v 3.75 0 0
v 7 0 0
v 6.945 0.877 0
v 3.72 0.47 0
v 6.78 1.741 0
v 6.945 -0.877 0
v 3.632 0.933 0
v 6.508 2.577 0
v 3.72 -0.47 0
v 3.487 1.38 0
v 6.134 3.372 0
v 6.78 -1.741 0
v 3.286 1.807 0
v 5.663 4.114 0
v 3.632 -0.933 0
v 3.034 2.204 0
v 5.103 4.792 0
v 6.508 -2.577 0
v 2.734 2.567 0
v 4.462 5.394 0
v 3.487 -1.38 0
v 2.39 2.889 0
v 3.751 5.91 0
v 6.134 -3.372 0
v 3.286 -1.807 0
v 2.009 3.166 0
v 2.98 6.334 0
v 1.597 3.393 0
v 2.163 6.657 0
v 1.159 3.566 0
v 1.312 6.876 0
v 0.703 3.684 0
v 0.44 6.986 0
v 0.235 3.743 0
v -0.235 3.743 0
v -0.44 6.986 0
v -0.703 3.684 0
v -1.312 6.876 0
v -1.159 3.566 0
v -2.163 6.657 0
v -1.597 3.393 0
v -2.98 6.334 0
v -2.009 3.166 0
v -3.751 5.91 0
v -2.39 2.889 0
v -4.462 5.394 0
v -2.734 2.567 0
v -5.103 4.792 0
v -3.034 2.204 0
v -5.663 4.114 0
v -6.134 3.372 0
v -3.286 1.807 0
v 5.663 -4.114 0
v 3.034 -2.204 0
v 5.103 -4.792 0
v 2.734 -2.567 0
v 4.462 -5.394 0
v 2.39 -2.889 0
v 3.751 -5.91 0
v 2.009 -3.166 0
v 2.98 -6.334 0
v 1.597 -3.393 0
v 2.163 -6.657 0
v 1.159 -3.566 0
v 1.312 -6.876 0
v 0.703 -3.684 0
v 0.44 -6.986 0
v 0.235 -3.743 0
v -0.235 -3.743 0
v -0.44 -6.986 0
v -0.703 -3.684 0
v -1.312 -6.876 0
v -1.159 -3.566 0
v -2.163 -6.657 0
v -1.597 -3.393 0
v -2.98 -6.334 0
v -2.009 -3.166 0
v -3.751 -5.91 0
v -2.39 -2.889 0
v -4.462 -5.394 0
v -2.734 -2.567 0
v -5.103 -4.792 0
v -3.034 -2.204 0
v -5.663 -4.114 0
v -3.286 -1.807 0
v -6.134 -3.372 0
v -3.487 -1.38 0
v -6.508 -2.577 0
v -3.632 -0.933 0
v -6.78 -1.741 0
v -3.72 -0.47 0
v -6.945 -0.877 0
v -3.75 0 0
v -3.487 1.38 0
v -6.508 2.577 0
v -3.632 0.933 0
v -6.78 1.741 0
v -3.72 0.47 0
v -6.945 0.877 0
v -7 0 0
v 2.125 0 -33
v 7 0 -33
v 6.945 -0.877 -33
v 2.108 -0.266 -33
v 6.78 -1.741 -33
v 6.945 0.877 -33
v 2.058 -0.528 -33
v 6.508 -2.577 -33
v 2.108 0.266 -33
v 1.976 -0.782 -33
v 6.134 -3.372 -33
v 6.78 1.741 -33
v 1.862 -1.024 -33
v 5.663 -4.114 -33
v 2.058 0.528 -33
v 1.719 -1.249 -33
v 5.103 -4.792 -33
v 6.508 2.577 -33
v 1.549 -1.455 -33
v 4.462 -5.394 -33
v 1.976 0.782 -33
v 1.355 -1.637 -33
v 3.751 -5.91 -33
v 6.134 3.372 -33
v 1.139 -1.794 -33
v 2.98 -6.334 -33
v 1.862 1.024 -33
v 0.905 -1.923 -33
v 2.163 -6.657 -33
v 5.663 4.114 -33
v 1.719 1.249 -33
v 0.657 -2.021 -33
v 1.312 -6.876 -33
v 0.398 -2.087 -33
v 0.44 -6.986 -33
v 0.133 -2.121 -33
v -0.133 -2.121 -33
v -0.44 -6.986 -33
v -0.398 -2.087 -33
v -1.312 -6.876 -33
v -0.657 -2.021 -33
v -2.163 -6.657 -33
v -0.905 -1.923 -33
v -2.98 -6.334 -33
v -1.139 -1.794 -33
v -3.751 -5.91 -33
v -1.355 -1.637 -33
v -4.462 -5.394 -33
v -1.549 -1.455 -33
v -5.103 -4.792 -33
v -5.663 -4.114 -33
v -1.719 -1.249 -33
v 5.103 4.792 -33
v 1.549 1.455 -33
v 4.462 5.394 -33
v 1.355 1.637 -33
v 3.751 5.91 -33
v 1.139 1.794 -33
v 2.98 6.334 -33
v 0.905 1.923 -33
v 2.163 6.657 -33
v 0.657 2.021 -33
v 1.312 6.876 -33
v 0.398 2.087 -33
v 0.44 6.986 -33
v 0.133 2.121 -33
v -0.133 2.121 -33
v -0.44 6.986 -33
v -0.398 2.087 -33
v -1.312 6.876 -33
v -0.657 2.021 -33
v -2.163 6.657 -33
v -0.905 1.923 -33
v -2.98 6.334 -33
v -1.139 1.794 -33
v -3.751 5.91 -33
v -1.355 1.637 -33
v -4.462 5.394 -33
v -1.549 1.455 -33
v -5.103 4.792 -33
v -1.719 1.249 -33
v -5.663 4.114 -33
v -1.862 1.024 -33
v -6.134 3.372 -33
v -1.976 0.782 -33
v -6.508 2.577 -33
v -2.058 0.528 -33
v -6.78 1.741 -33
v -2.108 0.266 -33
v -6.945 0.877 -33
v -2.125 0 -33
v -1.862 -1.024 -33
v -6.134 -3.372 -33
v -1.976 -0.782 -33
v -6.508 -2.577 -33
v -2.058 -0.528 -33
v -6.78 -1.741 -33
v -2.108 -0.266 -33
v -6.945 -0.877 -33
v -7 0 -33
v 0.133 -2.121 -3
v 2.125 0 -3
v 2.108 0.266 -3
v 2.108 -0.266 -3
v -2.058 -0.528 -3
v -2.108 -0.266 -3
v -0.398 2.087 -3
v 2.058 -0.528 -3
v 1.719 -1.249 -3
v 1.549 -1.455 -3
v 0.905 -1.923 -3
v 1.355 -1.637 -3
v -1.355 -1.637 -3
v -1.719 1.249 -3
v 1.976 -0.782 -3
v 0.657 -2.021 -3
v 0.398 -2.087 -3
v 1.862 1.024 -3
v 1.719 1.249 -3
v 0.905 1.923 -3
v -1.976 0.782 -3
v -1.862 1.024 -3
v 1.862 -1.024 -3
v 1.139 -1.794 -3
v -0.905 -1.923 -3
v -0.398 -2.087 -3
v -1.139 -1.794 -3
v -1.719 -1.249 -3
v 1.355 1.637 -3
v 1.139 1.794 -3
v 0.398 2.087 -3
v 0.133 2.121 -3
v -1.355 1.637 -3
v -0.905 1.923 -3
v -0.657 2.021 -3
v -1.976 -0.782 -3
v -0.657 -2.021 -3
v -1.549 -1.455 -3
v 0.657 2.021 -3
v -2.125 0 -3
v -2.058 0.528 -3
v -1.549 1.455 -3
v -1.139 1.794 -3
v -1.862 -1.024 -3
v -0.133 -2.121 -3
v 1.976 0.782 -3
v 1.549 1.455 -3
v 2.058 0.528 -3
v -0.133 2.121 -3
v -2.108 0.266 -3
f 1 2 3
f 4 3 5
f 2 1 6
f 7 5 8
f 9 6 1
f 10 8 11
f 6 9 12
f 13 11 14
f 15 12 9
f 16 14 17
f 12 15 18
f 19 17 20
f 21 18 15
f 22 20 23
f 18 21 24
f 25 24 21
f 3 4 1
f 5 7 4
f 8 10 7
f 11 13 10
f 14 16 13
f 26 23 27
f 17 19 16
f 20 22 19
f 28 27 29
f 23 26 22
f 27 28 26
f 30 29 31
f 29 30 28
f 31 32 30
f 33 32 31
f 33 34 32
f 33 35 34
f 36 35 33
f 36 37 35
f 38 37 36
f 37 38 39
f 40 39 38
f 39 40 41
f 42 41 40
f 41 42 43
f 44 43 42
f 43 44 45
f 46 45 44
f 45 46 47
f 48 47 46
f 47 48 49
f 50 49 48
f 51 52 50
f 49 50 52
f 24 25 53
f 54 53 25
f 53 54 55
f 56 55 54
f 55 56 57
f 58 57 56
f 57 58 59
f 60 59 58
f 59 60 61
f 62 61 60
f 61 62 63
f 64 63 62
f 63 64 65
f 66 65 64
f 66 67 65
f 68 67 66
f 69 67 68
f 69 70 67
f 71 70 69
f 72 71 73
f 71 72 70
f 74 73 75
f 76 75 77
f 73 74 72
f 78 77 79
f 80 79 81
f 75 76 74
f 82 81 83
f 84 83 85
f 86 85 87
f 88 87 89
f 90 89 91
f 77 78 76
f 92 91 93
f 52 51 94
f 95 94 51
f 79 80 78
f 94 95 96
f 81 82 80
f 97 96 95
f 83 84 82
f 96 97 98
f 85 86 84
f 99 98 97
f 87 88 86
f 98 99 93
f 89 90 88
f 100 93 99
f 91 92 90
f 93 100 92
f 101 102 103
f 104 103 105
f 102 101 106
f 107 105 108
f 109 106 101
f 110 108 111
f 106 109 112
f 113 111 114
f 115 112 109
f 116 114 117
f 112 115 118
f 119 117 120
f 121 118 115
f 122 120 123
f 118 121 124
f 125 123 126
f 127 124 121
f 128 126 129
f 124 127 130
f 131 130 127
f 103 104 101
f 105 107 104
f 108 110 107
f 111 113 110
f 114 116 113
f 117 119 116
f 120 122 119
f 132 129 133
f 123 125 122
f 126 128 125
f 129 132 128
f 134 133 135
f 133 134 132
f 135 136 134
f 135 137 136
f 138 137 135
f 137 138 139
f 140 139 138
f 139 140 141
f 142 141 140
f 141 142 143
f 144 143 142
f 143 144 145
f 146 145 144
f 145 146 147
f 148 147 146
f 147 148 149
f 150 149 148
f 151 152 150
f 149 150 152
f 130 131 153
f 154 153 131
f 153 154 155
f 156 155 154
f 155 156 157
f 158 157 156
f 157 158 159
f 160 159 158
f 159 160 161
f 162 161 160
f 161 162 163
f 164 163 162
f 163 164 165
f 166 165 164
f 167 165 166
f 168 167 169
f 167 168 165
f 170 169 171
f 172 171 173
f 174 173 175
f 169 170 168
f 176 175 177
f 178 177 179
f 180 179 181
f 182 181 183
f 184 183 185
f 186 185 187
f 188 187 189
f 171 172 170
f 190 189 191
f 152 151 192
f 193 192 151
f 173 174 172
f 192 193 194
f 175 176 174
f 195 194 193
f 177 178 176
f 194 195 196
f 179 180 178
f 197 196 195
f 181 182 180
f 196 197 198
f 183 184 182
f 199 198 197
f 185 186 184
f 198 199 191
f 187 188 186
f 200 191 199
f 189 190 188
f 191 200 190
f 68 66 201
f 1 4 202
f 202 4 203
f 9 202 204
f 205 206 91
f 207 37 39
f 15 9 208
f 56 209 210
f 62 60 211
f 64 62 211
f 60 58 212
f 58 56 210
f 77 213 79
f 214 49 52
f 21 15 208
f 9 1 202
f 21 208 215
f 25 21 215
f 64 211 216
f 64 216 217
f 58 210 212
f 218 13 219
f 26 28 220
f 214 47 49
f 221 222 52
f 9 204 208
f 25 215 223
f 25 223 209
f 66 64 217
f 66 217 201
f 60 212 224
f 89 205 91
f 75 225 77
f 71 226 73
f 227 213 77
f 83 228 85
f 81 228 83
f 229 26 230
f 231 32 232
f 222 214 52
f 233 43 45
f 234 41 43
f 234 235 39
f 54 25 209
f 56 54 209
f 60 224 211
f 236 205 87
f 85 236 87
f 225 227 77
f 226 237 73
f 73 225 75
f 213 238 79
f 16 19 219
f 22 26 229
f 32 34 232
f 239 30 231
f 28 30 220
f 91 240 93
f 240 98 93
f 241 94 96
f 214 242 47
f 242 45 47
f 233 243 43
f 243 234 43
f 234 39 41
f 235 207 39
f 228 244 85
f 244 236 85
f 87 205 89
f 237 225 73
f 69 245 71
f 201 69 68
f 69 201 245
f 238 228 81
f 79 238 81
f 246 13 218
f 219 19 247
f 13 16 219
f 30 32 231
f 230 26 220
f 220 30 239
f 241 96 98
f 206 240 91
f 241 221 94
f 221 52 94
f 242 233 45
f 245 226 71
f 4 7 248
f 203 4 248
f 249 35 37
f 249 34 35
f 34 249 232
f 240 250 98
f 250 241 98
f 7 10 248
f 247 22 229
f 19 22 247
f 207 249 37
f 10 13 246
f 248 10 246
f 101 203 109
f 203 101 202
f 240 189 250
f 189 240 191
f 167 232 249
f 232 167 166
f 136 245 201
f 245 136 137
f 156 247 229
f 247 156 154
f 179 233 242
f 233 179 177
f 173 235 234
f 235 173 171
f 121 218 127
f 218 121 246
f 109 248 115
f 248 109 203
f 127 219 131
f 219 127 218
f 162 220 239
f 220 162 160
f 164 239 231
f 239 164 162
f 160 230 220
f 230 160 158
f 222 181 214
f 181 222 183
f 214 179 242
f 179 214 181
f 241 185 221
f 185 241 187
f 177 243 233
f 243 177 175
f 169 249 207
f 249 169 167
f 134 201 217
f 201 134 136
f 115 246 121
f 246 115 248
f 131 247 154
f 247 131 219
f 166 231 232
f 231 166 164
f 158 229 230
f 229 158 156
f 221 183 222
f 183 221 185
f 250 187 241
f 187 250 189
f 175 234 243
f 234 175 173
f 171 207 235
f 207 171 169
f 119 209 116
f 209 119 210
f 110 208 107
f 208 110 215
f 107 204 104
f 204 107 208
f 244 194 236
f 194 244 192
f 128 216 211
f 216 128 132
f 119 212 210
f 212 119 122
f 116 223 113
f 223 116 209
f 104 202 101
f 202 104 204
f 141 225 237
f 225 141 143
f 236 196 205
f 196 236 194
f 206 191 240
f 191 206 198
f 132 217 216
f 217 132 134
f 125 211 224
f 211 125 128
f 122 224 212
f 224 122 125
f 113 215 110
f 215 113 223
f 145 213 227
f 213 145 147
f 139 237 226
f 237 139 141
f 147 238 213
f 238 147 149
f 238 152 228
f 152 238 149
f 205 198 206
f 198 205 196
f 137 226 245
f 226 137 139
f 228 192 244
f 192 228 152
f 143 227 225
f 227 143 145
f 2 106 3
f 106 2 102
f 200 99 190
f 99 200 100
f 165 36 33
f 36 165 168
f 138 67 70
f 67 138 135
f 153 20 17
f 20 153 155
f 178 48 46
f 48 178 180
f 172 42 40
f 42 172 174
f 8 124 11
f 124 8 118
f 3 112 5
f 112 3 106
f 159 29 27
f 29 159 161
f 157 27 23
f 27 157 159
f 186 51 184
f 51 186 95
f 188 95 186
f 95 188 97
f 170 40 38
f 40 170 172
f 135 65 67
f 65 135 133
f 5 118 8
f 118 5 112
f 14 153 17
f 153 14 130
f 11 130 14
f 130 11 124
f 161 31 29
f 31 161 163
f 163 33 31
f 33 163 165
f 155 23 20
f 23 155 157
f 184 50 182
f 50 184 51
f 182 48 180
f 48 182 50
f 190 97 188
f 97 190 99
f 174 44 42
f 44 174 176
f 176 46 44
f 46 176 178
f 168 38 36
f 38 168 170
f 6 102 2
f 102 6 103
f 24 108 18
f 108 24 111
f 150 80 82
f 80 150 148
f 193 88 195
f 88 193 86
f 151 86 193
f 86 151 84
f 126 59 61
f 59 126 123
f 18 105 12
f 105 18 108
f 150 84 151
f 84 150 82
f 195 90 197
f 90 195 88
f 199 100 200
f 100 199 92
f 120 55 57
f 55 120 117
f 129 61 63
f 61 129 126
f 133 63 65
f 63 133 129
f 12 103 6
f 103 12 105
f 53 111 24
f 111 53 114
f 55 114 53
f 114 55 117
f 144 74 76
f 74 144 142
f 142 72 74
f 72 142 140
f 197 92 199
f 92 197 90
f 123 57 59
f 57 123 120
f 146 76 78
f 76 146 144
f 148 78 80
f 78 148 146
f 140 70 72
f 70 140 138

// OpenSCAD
$fn = 50;


difference() {
	union() {
		translate(v = [0, 0, -33.0000000000]) {
			cylinder(h = 33, r = 7.0000000000);
		}
		cylinder(h = 0, r = 16.0000000000);
	}
	union() {
		translate(v = [0, 0, 0]) {
			rotate(a = [0, 0, 0]) {
				difference() {
					union() {
						#translate(v = [0, 0, -33.0000000000]) {
							cylinder(h = 33, r = 2.0000000000);
						}
						#translate(v = [0, 0, -3]) {
							cylinder(h = 3, r = 7.0000000000, r1 = 2.1250000000, r2 = 3.7500000000);
						}
						#translate(v = [0, 0, -33.0000000000]) {
							cylinder(h = 33, r = 2.1250000000);
						}
						#translate(v = [0, 0, -33.0000000000]) {
							cylinder(h = 33, r = 2.0000000000);
						}
					}
					union();
				}
			}
		}
	}
}
